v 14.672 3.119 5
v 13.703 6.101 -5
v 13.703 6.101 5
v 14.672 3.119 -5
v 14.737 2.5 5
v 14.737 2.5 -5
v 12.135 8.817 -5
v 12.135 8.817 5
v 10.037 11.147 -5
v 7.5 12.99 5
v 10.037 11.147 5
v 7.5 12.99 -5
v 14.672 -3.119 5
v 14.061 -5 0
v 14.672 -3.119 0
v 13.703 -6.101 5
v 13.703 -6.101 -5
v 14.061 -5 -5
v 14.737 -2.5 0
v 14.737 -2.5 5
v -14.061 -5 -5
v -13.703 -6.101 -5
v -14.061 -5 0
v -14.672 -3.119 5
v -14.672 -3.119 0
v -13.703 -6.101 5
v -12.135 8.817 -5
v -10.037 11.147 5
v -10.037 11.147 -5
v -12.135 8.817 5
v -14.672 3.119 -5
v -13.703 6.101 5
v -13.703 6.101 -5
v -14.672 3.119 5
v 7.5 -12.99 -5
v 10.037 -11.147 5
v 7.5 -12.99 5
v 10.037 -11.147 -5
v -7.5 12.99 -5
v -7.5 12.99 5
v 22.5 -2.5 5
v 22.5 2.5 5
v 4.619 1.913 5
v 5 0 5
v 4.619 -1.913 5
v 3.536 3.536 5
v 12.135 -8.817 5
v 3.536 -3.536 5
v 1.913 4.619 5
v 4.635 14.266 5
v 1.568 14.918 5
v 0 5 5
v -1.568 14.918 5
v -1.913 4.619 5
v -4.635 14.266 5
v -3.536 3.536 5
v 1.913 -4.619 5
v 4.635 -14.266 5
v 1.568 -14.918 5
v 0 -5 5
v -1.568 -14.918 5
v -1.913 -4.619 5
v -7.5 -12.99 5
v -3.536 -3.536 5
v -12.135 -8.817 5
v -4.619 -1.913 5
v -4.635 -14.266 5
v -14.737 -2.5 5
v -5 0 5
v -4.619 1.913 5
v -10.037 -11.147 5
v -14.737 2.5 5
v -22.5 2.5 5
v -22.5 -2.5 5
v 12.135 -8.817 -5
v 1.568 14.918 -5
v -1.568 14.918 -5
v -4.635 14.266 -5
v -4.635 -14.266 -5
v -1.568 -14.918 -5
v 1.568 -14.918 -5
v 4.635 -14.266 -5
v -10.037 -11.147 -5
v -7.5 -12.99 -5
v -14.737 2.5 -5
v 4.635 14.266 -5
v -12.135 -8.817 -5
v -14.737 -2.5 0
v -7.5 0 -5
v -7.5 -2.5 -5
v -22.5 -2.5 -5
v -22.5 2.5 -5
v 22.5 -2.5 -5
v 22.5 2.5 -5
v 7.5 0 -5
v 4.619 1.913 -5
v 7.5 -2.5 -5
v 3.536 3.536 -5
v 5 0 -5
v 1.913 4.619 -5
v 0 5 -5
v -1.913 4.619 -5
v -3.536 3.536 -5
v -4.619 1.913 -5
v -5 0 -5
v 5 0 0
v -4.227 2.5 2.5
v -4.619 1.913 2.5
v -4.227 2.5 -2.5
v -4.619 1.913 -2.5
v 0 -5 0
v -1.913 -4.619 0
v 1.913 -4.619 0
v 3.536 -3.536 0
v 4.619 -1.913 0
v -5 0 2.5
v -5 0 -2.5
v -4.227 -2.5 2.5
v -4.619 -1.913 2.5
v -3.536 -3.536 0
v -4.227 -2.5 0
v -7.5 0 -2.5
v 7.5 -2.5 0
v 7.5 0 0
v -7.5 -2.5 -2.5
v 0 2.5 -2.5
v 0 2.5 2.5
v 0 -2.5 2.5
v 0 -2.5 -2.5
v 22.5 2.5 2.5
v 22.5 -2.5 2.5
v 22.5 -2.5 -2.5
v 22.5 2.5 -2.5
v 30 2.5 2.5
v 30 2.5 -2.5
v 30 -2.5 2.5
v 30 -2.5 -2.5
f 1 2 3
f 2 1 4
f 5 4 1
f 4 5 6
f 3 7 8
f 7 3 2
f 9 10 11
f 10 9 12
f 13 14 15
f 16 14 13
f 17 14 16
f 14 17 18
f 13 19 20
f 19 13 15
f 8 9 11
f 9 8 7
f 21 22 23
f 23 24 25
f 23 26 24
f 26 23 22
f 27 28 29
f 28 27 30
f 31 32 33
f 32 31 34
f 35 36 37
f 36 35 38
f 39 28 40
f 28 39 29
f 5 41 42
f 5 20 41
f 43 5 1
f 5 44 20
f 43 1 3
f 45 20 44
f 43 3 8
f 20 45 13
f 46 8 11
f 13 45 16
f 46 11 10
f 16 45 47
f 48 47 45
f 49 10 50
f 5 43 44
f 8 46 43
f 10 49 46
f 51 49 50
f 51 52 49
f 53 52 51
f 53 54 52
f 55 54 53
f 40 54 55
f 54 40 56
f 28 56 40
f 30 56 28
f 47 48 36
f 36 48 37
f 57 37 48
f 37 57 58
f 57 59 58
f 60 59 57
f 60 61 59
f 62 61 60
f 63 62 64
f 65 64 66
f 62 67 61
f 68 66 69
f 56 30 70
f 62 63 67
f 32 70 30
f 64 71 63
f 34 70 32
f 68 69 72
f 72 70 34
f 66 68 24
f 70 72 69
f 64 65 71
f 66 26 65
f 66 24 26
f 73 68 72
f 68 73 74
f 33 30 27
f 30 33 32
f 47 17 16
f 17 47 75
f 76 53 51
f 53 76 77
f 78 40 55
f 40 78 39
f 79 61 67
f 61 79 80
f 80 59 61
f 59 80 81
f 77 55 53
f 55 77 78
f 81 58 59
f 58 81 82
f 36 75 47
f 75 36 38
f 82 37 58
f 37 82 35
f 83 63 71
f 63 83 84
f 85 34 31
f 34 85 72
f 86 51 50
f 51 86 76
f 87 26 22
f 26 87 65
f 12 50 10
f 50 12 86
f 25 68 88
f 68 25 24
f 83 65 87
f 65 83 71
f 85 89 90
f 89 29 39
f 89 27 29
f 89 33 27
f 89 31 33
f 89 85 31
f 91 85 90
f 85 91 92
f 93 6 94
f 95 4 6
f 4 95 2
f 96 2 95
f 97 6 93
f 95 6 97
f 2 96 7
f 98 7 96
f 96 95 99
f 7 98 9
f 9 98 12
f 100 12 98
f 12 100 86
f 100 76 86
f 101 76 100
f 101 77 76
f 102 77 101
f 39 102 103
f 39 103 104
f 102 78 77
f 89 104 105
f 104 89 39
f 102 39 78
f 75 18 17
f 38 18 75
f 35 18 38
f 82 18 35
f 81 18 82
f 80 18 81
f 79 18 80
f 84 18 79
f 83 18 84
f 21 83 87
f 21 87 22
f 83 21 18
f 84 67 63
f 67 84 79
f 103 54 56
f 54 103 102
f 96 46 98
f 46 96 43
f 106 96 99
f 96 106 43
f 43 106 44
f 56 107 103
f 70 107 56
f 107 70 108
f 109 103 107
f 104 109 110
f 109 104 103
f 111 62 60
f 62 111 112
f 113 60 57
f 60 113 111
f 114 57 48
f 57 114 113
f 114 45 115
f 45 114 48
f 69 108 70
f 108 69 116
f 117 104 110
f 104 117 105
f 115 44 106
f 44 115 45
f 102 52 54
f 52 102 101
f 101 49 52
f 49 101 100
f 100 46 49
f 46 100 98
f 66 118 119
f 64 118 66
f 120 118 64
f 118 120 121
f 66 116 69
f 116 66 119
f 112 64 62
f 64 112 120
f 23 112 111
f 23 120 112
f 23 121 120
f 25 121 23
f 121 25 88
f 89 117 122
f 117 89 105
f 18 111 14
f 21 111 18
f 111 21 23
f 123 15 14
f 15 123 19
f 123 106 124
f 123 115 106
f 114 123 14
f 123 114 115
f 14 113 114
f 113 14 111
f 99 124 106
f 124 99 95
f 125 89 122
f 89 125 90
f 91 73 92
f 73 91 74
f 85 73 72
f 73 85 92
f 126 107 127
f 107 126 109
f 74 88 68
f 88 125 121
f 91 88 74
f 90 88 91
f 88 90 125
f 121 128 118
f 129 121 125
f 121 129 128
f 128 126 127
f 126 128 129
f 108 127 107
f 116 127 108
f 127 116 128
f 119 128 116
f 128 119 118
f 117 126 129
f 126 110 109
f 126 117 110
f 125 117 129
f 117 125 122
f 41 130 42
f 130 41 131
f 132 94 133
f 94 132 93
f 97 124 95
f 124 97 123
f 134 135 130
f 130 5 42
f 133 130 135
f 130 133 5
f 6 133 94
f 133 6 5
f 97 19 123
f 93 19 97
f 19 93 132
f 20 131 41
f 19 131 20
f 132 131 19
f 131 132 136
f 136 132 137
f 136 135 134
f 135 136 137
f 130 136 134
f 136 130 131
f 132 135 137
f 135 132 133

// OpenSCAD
// Parameters for the central body
module central_body() {
    difference() {
        // Main cylindrical body
        cylinder(h = 10, r = 15, center = true);
        
        // Central hole
        translate([0, 0, -5])
            cylinder(h = 20, r = 5, center = true);
        
        // Rectangular cutouts on opposite sides
        translate([-7.5, -2.5, -5])
            cube([15, 5, 10], center = true);
        translate([7.5, -2.5, -5])
            cube([15, 5, 10], center = true);
    }
}

// Parameters for the side arm
module side_arm() {
    union() {
        // L-shaped arm
        cube([15, 5, 10], center = true);
        translate([7.5, 0, 0])
            cube([15, 5, 5], center = true);
    }
}

// Assembly of the flexible coupling
module flexible_coupling() {
    // Layer 1: Central body
    central_body();
    
    // Layer 2: Side arms
    translate([-15, 0, 0])
        side_arm();
    translate([15, 0, 0])
        side_arm();
}

// Render the model
flexible_coupling();
